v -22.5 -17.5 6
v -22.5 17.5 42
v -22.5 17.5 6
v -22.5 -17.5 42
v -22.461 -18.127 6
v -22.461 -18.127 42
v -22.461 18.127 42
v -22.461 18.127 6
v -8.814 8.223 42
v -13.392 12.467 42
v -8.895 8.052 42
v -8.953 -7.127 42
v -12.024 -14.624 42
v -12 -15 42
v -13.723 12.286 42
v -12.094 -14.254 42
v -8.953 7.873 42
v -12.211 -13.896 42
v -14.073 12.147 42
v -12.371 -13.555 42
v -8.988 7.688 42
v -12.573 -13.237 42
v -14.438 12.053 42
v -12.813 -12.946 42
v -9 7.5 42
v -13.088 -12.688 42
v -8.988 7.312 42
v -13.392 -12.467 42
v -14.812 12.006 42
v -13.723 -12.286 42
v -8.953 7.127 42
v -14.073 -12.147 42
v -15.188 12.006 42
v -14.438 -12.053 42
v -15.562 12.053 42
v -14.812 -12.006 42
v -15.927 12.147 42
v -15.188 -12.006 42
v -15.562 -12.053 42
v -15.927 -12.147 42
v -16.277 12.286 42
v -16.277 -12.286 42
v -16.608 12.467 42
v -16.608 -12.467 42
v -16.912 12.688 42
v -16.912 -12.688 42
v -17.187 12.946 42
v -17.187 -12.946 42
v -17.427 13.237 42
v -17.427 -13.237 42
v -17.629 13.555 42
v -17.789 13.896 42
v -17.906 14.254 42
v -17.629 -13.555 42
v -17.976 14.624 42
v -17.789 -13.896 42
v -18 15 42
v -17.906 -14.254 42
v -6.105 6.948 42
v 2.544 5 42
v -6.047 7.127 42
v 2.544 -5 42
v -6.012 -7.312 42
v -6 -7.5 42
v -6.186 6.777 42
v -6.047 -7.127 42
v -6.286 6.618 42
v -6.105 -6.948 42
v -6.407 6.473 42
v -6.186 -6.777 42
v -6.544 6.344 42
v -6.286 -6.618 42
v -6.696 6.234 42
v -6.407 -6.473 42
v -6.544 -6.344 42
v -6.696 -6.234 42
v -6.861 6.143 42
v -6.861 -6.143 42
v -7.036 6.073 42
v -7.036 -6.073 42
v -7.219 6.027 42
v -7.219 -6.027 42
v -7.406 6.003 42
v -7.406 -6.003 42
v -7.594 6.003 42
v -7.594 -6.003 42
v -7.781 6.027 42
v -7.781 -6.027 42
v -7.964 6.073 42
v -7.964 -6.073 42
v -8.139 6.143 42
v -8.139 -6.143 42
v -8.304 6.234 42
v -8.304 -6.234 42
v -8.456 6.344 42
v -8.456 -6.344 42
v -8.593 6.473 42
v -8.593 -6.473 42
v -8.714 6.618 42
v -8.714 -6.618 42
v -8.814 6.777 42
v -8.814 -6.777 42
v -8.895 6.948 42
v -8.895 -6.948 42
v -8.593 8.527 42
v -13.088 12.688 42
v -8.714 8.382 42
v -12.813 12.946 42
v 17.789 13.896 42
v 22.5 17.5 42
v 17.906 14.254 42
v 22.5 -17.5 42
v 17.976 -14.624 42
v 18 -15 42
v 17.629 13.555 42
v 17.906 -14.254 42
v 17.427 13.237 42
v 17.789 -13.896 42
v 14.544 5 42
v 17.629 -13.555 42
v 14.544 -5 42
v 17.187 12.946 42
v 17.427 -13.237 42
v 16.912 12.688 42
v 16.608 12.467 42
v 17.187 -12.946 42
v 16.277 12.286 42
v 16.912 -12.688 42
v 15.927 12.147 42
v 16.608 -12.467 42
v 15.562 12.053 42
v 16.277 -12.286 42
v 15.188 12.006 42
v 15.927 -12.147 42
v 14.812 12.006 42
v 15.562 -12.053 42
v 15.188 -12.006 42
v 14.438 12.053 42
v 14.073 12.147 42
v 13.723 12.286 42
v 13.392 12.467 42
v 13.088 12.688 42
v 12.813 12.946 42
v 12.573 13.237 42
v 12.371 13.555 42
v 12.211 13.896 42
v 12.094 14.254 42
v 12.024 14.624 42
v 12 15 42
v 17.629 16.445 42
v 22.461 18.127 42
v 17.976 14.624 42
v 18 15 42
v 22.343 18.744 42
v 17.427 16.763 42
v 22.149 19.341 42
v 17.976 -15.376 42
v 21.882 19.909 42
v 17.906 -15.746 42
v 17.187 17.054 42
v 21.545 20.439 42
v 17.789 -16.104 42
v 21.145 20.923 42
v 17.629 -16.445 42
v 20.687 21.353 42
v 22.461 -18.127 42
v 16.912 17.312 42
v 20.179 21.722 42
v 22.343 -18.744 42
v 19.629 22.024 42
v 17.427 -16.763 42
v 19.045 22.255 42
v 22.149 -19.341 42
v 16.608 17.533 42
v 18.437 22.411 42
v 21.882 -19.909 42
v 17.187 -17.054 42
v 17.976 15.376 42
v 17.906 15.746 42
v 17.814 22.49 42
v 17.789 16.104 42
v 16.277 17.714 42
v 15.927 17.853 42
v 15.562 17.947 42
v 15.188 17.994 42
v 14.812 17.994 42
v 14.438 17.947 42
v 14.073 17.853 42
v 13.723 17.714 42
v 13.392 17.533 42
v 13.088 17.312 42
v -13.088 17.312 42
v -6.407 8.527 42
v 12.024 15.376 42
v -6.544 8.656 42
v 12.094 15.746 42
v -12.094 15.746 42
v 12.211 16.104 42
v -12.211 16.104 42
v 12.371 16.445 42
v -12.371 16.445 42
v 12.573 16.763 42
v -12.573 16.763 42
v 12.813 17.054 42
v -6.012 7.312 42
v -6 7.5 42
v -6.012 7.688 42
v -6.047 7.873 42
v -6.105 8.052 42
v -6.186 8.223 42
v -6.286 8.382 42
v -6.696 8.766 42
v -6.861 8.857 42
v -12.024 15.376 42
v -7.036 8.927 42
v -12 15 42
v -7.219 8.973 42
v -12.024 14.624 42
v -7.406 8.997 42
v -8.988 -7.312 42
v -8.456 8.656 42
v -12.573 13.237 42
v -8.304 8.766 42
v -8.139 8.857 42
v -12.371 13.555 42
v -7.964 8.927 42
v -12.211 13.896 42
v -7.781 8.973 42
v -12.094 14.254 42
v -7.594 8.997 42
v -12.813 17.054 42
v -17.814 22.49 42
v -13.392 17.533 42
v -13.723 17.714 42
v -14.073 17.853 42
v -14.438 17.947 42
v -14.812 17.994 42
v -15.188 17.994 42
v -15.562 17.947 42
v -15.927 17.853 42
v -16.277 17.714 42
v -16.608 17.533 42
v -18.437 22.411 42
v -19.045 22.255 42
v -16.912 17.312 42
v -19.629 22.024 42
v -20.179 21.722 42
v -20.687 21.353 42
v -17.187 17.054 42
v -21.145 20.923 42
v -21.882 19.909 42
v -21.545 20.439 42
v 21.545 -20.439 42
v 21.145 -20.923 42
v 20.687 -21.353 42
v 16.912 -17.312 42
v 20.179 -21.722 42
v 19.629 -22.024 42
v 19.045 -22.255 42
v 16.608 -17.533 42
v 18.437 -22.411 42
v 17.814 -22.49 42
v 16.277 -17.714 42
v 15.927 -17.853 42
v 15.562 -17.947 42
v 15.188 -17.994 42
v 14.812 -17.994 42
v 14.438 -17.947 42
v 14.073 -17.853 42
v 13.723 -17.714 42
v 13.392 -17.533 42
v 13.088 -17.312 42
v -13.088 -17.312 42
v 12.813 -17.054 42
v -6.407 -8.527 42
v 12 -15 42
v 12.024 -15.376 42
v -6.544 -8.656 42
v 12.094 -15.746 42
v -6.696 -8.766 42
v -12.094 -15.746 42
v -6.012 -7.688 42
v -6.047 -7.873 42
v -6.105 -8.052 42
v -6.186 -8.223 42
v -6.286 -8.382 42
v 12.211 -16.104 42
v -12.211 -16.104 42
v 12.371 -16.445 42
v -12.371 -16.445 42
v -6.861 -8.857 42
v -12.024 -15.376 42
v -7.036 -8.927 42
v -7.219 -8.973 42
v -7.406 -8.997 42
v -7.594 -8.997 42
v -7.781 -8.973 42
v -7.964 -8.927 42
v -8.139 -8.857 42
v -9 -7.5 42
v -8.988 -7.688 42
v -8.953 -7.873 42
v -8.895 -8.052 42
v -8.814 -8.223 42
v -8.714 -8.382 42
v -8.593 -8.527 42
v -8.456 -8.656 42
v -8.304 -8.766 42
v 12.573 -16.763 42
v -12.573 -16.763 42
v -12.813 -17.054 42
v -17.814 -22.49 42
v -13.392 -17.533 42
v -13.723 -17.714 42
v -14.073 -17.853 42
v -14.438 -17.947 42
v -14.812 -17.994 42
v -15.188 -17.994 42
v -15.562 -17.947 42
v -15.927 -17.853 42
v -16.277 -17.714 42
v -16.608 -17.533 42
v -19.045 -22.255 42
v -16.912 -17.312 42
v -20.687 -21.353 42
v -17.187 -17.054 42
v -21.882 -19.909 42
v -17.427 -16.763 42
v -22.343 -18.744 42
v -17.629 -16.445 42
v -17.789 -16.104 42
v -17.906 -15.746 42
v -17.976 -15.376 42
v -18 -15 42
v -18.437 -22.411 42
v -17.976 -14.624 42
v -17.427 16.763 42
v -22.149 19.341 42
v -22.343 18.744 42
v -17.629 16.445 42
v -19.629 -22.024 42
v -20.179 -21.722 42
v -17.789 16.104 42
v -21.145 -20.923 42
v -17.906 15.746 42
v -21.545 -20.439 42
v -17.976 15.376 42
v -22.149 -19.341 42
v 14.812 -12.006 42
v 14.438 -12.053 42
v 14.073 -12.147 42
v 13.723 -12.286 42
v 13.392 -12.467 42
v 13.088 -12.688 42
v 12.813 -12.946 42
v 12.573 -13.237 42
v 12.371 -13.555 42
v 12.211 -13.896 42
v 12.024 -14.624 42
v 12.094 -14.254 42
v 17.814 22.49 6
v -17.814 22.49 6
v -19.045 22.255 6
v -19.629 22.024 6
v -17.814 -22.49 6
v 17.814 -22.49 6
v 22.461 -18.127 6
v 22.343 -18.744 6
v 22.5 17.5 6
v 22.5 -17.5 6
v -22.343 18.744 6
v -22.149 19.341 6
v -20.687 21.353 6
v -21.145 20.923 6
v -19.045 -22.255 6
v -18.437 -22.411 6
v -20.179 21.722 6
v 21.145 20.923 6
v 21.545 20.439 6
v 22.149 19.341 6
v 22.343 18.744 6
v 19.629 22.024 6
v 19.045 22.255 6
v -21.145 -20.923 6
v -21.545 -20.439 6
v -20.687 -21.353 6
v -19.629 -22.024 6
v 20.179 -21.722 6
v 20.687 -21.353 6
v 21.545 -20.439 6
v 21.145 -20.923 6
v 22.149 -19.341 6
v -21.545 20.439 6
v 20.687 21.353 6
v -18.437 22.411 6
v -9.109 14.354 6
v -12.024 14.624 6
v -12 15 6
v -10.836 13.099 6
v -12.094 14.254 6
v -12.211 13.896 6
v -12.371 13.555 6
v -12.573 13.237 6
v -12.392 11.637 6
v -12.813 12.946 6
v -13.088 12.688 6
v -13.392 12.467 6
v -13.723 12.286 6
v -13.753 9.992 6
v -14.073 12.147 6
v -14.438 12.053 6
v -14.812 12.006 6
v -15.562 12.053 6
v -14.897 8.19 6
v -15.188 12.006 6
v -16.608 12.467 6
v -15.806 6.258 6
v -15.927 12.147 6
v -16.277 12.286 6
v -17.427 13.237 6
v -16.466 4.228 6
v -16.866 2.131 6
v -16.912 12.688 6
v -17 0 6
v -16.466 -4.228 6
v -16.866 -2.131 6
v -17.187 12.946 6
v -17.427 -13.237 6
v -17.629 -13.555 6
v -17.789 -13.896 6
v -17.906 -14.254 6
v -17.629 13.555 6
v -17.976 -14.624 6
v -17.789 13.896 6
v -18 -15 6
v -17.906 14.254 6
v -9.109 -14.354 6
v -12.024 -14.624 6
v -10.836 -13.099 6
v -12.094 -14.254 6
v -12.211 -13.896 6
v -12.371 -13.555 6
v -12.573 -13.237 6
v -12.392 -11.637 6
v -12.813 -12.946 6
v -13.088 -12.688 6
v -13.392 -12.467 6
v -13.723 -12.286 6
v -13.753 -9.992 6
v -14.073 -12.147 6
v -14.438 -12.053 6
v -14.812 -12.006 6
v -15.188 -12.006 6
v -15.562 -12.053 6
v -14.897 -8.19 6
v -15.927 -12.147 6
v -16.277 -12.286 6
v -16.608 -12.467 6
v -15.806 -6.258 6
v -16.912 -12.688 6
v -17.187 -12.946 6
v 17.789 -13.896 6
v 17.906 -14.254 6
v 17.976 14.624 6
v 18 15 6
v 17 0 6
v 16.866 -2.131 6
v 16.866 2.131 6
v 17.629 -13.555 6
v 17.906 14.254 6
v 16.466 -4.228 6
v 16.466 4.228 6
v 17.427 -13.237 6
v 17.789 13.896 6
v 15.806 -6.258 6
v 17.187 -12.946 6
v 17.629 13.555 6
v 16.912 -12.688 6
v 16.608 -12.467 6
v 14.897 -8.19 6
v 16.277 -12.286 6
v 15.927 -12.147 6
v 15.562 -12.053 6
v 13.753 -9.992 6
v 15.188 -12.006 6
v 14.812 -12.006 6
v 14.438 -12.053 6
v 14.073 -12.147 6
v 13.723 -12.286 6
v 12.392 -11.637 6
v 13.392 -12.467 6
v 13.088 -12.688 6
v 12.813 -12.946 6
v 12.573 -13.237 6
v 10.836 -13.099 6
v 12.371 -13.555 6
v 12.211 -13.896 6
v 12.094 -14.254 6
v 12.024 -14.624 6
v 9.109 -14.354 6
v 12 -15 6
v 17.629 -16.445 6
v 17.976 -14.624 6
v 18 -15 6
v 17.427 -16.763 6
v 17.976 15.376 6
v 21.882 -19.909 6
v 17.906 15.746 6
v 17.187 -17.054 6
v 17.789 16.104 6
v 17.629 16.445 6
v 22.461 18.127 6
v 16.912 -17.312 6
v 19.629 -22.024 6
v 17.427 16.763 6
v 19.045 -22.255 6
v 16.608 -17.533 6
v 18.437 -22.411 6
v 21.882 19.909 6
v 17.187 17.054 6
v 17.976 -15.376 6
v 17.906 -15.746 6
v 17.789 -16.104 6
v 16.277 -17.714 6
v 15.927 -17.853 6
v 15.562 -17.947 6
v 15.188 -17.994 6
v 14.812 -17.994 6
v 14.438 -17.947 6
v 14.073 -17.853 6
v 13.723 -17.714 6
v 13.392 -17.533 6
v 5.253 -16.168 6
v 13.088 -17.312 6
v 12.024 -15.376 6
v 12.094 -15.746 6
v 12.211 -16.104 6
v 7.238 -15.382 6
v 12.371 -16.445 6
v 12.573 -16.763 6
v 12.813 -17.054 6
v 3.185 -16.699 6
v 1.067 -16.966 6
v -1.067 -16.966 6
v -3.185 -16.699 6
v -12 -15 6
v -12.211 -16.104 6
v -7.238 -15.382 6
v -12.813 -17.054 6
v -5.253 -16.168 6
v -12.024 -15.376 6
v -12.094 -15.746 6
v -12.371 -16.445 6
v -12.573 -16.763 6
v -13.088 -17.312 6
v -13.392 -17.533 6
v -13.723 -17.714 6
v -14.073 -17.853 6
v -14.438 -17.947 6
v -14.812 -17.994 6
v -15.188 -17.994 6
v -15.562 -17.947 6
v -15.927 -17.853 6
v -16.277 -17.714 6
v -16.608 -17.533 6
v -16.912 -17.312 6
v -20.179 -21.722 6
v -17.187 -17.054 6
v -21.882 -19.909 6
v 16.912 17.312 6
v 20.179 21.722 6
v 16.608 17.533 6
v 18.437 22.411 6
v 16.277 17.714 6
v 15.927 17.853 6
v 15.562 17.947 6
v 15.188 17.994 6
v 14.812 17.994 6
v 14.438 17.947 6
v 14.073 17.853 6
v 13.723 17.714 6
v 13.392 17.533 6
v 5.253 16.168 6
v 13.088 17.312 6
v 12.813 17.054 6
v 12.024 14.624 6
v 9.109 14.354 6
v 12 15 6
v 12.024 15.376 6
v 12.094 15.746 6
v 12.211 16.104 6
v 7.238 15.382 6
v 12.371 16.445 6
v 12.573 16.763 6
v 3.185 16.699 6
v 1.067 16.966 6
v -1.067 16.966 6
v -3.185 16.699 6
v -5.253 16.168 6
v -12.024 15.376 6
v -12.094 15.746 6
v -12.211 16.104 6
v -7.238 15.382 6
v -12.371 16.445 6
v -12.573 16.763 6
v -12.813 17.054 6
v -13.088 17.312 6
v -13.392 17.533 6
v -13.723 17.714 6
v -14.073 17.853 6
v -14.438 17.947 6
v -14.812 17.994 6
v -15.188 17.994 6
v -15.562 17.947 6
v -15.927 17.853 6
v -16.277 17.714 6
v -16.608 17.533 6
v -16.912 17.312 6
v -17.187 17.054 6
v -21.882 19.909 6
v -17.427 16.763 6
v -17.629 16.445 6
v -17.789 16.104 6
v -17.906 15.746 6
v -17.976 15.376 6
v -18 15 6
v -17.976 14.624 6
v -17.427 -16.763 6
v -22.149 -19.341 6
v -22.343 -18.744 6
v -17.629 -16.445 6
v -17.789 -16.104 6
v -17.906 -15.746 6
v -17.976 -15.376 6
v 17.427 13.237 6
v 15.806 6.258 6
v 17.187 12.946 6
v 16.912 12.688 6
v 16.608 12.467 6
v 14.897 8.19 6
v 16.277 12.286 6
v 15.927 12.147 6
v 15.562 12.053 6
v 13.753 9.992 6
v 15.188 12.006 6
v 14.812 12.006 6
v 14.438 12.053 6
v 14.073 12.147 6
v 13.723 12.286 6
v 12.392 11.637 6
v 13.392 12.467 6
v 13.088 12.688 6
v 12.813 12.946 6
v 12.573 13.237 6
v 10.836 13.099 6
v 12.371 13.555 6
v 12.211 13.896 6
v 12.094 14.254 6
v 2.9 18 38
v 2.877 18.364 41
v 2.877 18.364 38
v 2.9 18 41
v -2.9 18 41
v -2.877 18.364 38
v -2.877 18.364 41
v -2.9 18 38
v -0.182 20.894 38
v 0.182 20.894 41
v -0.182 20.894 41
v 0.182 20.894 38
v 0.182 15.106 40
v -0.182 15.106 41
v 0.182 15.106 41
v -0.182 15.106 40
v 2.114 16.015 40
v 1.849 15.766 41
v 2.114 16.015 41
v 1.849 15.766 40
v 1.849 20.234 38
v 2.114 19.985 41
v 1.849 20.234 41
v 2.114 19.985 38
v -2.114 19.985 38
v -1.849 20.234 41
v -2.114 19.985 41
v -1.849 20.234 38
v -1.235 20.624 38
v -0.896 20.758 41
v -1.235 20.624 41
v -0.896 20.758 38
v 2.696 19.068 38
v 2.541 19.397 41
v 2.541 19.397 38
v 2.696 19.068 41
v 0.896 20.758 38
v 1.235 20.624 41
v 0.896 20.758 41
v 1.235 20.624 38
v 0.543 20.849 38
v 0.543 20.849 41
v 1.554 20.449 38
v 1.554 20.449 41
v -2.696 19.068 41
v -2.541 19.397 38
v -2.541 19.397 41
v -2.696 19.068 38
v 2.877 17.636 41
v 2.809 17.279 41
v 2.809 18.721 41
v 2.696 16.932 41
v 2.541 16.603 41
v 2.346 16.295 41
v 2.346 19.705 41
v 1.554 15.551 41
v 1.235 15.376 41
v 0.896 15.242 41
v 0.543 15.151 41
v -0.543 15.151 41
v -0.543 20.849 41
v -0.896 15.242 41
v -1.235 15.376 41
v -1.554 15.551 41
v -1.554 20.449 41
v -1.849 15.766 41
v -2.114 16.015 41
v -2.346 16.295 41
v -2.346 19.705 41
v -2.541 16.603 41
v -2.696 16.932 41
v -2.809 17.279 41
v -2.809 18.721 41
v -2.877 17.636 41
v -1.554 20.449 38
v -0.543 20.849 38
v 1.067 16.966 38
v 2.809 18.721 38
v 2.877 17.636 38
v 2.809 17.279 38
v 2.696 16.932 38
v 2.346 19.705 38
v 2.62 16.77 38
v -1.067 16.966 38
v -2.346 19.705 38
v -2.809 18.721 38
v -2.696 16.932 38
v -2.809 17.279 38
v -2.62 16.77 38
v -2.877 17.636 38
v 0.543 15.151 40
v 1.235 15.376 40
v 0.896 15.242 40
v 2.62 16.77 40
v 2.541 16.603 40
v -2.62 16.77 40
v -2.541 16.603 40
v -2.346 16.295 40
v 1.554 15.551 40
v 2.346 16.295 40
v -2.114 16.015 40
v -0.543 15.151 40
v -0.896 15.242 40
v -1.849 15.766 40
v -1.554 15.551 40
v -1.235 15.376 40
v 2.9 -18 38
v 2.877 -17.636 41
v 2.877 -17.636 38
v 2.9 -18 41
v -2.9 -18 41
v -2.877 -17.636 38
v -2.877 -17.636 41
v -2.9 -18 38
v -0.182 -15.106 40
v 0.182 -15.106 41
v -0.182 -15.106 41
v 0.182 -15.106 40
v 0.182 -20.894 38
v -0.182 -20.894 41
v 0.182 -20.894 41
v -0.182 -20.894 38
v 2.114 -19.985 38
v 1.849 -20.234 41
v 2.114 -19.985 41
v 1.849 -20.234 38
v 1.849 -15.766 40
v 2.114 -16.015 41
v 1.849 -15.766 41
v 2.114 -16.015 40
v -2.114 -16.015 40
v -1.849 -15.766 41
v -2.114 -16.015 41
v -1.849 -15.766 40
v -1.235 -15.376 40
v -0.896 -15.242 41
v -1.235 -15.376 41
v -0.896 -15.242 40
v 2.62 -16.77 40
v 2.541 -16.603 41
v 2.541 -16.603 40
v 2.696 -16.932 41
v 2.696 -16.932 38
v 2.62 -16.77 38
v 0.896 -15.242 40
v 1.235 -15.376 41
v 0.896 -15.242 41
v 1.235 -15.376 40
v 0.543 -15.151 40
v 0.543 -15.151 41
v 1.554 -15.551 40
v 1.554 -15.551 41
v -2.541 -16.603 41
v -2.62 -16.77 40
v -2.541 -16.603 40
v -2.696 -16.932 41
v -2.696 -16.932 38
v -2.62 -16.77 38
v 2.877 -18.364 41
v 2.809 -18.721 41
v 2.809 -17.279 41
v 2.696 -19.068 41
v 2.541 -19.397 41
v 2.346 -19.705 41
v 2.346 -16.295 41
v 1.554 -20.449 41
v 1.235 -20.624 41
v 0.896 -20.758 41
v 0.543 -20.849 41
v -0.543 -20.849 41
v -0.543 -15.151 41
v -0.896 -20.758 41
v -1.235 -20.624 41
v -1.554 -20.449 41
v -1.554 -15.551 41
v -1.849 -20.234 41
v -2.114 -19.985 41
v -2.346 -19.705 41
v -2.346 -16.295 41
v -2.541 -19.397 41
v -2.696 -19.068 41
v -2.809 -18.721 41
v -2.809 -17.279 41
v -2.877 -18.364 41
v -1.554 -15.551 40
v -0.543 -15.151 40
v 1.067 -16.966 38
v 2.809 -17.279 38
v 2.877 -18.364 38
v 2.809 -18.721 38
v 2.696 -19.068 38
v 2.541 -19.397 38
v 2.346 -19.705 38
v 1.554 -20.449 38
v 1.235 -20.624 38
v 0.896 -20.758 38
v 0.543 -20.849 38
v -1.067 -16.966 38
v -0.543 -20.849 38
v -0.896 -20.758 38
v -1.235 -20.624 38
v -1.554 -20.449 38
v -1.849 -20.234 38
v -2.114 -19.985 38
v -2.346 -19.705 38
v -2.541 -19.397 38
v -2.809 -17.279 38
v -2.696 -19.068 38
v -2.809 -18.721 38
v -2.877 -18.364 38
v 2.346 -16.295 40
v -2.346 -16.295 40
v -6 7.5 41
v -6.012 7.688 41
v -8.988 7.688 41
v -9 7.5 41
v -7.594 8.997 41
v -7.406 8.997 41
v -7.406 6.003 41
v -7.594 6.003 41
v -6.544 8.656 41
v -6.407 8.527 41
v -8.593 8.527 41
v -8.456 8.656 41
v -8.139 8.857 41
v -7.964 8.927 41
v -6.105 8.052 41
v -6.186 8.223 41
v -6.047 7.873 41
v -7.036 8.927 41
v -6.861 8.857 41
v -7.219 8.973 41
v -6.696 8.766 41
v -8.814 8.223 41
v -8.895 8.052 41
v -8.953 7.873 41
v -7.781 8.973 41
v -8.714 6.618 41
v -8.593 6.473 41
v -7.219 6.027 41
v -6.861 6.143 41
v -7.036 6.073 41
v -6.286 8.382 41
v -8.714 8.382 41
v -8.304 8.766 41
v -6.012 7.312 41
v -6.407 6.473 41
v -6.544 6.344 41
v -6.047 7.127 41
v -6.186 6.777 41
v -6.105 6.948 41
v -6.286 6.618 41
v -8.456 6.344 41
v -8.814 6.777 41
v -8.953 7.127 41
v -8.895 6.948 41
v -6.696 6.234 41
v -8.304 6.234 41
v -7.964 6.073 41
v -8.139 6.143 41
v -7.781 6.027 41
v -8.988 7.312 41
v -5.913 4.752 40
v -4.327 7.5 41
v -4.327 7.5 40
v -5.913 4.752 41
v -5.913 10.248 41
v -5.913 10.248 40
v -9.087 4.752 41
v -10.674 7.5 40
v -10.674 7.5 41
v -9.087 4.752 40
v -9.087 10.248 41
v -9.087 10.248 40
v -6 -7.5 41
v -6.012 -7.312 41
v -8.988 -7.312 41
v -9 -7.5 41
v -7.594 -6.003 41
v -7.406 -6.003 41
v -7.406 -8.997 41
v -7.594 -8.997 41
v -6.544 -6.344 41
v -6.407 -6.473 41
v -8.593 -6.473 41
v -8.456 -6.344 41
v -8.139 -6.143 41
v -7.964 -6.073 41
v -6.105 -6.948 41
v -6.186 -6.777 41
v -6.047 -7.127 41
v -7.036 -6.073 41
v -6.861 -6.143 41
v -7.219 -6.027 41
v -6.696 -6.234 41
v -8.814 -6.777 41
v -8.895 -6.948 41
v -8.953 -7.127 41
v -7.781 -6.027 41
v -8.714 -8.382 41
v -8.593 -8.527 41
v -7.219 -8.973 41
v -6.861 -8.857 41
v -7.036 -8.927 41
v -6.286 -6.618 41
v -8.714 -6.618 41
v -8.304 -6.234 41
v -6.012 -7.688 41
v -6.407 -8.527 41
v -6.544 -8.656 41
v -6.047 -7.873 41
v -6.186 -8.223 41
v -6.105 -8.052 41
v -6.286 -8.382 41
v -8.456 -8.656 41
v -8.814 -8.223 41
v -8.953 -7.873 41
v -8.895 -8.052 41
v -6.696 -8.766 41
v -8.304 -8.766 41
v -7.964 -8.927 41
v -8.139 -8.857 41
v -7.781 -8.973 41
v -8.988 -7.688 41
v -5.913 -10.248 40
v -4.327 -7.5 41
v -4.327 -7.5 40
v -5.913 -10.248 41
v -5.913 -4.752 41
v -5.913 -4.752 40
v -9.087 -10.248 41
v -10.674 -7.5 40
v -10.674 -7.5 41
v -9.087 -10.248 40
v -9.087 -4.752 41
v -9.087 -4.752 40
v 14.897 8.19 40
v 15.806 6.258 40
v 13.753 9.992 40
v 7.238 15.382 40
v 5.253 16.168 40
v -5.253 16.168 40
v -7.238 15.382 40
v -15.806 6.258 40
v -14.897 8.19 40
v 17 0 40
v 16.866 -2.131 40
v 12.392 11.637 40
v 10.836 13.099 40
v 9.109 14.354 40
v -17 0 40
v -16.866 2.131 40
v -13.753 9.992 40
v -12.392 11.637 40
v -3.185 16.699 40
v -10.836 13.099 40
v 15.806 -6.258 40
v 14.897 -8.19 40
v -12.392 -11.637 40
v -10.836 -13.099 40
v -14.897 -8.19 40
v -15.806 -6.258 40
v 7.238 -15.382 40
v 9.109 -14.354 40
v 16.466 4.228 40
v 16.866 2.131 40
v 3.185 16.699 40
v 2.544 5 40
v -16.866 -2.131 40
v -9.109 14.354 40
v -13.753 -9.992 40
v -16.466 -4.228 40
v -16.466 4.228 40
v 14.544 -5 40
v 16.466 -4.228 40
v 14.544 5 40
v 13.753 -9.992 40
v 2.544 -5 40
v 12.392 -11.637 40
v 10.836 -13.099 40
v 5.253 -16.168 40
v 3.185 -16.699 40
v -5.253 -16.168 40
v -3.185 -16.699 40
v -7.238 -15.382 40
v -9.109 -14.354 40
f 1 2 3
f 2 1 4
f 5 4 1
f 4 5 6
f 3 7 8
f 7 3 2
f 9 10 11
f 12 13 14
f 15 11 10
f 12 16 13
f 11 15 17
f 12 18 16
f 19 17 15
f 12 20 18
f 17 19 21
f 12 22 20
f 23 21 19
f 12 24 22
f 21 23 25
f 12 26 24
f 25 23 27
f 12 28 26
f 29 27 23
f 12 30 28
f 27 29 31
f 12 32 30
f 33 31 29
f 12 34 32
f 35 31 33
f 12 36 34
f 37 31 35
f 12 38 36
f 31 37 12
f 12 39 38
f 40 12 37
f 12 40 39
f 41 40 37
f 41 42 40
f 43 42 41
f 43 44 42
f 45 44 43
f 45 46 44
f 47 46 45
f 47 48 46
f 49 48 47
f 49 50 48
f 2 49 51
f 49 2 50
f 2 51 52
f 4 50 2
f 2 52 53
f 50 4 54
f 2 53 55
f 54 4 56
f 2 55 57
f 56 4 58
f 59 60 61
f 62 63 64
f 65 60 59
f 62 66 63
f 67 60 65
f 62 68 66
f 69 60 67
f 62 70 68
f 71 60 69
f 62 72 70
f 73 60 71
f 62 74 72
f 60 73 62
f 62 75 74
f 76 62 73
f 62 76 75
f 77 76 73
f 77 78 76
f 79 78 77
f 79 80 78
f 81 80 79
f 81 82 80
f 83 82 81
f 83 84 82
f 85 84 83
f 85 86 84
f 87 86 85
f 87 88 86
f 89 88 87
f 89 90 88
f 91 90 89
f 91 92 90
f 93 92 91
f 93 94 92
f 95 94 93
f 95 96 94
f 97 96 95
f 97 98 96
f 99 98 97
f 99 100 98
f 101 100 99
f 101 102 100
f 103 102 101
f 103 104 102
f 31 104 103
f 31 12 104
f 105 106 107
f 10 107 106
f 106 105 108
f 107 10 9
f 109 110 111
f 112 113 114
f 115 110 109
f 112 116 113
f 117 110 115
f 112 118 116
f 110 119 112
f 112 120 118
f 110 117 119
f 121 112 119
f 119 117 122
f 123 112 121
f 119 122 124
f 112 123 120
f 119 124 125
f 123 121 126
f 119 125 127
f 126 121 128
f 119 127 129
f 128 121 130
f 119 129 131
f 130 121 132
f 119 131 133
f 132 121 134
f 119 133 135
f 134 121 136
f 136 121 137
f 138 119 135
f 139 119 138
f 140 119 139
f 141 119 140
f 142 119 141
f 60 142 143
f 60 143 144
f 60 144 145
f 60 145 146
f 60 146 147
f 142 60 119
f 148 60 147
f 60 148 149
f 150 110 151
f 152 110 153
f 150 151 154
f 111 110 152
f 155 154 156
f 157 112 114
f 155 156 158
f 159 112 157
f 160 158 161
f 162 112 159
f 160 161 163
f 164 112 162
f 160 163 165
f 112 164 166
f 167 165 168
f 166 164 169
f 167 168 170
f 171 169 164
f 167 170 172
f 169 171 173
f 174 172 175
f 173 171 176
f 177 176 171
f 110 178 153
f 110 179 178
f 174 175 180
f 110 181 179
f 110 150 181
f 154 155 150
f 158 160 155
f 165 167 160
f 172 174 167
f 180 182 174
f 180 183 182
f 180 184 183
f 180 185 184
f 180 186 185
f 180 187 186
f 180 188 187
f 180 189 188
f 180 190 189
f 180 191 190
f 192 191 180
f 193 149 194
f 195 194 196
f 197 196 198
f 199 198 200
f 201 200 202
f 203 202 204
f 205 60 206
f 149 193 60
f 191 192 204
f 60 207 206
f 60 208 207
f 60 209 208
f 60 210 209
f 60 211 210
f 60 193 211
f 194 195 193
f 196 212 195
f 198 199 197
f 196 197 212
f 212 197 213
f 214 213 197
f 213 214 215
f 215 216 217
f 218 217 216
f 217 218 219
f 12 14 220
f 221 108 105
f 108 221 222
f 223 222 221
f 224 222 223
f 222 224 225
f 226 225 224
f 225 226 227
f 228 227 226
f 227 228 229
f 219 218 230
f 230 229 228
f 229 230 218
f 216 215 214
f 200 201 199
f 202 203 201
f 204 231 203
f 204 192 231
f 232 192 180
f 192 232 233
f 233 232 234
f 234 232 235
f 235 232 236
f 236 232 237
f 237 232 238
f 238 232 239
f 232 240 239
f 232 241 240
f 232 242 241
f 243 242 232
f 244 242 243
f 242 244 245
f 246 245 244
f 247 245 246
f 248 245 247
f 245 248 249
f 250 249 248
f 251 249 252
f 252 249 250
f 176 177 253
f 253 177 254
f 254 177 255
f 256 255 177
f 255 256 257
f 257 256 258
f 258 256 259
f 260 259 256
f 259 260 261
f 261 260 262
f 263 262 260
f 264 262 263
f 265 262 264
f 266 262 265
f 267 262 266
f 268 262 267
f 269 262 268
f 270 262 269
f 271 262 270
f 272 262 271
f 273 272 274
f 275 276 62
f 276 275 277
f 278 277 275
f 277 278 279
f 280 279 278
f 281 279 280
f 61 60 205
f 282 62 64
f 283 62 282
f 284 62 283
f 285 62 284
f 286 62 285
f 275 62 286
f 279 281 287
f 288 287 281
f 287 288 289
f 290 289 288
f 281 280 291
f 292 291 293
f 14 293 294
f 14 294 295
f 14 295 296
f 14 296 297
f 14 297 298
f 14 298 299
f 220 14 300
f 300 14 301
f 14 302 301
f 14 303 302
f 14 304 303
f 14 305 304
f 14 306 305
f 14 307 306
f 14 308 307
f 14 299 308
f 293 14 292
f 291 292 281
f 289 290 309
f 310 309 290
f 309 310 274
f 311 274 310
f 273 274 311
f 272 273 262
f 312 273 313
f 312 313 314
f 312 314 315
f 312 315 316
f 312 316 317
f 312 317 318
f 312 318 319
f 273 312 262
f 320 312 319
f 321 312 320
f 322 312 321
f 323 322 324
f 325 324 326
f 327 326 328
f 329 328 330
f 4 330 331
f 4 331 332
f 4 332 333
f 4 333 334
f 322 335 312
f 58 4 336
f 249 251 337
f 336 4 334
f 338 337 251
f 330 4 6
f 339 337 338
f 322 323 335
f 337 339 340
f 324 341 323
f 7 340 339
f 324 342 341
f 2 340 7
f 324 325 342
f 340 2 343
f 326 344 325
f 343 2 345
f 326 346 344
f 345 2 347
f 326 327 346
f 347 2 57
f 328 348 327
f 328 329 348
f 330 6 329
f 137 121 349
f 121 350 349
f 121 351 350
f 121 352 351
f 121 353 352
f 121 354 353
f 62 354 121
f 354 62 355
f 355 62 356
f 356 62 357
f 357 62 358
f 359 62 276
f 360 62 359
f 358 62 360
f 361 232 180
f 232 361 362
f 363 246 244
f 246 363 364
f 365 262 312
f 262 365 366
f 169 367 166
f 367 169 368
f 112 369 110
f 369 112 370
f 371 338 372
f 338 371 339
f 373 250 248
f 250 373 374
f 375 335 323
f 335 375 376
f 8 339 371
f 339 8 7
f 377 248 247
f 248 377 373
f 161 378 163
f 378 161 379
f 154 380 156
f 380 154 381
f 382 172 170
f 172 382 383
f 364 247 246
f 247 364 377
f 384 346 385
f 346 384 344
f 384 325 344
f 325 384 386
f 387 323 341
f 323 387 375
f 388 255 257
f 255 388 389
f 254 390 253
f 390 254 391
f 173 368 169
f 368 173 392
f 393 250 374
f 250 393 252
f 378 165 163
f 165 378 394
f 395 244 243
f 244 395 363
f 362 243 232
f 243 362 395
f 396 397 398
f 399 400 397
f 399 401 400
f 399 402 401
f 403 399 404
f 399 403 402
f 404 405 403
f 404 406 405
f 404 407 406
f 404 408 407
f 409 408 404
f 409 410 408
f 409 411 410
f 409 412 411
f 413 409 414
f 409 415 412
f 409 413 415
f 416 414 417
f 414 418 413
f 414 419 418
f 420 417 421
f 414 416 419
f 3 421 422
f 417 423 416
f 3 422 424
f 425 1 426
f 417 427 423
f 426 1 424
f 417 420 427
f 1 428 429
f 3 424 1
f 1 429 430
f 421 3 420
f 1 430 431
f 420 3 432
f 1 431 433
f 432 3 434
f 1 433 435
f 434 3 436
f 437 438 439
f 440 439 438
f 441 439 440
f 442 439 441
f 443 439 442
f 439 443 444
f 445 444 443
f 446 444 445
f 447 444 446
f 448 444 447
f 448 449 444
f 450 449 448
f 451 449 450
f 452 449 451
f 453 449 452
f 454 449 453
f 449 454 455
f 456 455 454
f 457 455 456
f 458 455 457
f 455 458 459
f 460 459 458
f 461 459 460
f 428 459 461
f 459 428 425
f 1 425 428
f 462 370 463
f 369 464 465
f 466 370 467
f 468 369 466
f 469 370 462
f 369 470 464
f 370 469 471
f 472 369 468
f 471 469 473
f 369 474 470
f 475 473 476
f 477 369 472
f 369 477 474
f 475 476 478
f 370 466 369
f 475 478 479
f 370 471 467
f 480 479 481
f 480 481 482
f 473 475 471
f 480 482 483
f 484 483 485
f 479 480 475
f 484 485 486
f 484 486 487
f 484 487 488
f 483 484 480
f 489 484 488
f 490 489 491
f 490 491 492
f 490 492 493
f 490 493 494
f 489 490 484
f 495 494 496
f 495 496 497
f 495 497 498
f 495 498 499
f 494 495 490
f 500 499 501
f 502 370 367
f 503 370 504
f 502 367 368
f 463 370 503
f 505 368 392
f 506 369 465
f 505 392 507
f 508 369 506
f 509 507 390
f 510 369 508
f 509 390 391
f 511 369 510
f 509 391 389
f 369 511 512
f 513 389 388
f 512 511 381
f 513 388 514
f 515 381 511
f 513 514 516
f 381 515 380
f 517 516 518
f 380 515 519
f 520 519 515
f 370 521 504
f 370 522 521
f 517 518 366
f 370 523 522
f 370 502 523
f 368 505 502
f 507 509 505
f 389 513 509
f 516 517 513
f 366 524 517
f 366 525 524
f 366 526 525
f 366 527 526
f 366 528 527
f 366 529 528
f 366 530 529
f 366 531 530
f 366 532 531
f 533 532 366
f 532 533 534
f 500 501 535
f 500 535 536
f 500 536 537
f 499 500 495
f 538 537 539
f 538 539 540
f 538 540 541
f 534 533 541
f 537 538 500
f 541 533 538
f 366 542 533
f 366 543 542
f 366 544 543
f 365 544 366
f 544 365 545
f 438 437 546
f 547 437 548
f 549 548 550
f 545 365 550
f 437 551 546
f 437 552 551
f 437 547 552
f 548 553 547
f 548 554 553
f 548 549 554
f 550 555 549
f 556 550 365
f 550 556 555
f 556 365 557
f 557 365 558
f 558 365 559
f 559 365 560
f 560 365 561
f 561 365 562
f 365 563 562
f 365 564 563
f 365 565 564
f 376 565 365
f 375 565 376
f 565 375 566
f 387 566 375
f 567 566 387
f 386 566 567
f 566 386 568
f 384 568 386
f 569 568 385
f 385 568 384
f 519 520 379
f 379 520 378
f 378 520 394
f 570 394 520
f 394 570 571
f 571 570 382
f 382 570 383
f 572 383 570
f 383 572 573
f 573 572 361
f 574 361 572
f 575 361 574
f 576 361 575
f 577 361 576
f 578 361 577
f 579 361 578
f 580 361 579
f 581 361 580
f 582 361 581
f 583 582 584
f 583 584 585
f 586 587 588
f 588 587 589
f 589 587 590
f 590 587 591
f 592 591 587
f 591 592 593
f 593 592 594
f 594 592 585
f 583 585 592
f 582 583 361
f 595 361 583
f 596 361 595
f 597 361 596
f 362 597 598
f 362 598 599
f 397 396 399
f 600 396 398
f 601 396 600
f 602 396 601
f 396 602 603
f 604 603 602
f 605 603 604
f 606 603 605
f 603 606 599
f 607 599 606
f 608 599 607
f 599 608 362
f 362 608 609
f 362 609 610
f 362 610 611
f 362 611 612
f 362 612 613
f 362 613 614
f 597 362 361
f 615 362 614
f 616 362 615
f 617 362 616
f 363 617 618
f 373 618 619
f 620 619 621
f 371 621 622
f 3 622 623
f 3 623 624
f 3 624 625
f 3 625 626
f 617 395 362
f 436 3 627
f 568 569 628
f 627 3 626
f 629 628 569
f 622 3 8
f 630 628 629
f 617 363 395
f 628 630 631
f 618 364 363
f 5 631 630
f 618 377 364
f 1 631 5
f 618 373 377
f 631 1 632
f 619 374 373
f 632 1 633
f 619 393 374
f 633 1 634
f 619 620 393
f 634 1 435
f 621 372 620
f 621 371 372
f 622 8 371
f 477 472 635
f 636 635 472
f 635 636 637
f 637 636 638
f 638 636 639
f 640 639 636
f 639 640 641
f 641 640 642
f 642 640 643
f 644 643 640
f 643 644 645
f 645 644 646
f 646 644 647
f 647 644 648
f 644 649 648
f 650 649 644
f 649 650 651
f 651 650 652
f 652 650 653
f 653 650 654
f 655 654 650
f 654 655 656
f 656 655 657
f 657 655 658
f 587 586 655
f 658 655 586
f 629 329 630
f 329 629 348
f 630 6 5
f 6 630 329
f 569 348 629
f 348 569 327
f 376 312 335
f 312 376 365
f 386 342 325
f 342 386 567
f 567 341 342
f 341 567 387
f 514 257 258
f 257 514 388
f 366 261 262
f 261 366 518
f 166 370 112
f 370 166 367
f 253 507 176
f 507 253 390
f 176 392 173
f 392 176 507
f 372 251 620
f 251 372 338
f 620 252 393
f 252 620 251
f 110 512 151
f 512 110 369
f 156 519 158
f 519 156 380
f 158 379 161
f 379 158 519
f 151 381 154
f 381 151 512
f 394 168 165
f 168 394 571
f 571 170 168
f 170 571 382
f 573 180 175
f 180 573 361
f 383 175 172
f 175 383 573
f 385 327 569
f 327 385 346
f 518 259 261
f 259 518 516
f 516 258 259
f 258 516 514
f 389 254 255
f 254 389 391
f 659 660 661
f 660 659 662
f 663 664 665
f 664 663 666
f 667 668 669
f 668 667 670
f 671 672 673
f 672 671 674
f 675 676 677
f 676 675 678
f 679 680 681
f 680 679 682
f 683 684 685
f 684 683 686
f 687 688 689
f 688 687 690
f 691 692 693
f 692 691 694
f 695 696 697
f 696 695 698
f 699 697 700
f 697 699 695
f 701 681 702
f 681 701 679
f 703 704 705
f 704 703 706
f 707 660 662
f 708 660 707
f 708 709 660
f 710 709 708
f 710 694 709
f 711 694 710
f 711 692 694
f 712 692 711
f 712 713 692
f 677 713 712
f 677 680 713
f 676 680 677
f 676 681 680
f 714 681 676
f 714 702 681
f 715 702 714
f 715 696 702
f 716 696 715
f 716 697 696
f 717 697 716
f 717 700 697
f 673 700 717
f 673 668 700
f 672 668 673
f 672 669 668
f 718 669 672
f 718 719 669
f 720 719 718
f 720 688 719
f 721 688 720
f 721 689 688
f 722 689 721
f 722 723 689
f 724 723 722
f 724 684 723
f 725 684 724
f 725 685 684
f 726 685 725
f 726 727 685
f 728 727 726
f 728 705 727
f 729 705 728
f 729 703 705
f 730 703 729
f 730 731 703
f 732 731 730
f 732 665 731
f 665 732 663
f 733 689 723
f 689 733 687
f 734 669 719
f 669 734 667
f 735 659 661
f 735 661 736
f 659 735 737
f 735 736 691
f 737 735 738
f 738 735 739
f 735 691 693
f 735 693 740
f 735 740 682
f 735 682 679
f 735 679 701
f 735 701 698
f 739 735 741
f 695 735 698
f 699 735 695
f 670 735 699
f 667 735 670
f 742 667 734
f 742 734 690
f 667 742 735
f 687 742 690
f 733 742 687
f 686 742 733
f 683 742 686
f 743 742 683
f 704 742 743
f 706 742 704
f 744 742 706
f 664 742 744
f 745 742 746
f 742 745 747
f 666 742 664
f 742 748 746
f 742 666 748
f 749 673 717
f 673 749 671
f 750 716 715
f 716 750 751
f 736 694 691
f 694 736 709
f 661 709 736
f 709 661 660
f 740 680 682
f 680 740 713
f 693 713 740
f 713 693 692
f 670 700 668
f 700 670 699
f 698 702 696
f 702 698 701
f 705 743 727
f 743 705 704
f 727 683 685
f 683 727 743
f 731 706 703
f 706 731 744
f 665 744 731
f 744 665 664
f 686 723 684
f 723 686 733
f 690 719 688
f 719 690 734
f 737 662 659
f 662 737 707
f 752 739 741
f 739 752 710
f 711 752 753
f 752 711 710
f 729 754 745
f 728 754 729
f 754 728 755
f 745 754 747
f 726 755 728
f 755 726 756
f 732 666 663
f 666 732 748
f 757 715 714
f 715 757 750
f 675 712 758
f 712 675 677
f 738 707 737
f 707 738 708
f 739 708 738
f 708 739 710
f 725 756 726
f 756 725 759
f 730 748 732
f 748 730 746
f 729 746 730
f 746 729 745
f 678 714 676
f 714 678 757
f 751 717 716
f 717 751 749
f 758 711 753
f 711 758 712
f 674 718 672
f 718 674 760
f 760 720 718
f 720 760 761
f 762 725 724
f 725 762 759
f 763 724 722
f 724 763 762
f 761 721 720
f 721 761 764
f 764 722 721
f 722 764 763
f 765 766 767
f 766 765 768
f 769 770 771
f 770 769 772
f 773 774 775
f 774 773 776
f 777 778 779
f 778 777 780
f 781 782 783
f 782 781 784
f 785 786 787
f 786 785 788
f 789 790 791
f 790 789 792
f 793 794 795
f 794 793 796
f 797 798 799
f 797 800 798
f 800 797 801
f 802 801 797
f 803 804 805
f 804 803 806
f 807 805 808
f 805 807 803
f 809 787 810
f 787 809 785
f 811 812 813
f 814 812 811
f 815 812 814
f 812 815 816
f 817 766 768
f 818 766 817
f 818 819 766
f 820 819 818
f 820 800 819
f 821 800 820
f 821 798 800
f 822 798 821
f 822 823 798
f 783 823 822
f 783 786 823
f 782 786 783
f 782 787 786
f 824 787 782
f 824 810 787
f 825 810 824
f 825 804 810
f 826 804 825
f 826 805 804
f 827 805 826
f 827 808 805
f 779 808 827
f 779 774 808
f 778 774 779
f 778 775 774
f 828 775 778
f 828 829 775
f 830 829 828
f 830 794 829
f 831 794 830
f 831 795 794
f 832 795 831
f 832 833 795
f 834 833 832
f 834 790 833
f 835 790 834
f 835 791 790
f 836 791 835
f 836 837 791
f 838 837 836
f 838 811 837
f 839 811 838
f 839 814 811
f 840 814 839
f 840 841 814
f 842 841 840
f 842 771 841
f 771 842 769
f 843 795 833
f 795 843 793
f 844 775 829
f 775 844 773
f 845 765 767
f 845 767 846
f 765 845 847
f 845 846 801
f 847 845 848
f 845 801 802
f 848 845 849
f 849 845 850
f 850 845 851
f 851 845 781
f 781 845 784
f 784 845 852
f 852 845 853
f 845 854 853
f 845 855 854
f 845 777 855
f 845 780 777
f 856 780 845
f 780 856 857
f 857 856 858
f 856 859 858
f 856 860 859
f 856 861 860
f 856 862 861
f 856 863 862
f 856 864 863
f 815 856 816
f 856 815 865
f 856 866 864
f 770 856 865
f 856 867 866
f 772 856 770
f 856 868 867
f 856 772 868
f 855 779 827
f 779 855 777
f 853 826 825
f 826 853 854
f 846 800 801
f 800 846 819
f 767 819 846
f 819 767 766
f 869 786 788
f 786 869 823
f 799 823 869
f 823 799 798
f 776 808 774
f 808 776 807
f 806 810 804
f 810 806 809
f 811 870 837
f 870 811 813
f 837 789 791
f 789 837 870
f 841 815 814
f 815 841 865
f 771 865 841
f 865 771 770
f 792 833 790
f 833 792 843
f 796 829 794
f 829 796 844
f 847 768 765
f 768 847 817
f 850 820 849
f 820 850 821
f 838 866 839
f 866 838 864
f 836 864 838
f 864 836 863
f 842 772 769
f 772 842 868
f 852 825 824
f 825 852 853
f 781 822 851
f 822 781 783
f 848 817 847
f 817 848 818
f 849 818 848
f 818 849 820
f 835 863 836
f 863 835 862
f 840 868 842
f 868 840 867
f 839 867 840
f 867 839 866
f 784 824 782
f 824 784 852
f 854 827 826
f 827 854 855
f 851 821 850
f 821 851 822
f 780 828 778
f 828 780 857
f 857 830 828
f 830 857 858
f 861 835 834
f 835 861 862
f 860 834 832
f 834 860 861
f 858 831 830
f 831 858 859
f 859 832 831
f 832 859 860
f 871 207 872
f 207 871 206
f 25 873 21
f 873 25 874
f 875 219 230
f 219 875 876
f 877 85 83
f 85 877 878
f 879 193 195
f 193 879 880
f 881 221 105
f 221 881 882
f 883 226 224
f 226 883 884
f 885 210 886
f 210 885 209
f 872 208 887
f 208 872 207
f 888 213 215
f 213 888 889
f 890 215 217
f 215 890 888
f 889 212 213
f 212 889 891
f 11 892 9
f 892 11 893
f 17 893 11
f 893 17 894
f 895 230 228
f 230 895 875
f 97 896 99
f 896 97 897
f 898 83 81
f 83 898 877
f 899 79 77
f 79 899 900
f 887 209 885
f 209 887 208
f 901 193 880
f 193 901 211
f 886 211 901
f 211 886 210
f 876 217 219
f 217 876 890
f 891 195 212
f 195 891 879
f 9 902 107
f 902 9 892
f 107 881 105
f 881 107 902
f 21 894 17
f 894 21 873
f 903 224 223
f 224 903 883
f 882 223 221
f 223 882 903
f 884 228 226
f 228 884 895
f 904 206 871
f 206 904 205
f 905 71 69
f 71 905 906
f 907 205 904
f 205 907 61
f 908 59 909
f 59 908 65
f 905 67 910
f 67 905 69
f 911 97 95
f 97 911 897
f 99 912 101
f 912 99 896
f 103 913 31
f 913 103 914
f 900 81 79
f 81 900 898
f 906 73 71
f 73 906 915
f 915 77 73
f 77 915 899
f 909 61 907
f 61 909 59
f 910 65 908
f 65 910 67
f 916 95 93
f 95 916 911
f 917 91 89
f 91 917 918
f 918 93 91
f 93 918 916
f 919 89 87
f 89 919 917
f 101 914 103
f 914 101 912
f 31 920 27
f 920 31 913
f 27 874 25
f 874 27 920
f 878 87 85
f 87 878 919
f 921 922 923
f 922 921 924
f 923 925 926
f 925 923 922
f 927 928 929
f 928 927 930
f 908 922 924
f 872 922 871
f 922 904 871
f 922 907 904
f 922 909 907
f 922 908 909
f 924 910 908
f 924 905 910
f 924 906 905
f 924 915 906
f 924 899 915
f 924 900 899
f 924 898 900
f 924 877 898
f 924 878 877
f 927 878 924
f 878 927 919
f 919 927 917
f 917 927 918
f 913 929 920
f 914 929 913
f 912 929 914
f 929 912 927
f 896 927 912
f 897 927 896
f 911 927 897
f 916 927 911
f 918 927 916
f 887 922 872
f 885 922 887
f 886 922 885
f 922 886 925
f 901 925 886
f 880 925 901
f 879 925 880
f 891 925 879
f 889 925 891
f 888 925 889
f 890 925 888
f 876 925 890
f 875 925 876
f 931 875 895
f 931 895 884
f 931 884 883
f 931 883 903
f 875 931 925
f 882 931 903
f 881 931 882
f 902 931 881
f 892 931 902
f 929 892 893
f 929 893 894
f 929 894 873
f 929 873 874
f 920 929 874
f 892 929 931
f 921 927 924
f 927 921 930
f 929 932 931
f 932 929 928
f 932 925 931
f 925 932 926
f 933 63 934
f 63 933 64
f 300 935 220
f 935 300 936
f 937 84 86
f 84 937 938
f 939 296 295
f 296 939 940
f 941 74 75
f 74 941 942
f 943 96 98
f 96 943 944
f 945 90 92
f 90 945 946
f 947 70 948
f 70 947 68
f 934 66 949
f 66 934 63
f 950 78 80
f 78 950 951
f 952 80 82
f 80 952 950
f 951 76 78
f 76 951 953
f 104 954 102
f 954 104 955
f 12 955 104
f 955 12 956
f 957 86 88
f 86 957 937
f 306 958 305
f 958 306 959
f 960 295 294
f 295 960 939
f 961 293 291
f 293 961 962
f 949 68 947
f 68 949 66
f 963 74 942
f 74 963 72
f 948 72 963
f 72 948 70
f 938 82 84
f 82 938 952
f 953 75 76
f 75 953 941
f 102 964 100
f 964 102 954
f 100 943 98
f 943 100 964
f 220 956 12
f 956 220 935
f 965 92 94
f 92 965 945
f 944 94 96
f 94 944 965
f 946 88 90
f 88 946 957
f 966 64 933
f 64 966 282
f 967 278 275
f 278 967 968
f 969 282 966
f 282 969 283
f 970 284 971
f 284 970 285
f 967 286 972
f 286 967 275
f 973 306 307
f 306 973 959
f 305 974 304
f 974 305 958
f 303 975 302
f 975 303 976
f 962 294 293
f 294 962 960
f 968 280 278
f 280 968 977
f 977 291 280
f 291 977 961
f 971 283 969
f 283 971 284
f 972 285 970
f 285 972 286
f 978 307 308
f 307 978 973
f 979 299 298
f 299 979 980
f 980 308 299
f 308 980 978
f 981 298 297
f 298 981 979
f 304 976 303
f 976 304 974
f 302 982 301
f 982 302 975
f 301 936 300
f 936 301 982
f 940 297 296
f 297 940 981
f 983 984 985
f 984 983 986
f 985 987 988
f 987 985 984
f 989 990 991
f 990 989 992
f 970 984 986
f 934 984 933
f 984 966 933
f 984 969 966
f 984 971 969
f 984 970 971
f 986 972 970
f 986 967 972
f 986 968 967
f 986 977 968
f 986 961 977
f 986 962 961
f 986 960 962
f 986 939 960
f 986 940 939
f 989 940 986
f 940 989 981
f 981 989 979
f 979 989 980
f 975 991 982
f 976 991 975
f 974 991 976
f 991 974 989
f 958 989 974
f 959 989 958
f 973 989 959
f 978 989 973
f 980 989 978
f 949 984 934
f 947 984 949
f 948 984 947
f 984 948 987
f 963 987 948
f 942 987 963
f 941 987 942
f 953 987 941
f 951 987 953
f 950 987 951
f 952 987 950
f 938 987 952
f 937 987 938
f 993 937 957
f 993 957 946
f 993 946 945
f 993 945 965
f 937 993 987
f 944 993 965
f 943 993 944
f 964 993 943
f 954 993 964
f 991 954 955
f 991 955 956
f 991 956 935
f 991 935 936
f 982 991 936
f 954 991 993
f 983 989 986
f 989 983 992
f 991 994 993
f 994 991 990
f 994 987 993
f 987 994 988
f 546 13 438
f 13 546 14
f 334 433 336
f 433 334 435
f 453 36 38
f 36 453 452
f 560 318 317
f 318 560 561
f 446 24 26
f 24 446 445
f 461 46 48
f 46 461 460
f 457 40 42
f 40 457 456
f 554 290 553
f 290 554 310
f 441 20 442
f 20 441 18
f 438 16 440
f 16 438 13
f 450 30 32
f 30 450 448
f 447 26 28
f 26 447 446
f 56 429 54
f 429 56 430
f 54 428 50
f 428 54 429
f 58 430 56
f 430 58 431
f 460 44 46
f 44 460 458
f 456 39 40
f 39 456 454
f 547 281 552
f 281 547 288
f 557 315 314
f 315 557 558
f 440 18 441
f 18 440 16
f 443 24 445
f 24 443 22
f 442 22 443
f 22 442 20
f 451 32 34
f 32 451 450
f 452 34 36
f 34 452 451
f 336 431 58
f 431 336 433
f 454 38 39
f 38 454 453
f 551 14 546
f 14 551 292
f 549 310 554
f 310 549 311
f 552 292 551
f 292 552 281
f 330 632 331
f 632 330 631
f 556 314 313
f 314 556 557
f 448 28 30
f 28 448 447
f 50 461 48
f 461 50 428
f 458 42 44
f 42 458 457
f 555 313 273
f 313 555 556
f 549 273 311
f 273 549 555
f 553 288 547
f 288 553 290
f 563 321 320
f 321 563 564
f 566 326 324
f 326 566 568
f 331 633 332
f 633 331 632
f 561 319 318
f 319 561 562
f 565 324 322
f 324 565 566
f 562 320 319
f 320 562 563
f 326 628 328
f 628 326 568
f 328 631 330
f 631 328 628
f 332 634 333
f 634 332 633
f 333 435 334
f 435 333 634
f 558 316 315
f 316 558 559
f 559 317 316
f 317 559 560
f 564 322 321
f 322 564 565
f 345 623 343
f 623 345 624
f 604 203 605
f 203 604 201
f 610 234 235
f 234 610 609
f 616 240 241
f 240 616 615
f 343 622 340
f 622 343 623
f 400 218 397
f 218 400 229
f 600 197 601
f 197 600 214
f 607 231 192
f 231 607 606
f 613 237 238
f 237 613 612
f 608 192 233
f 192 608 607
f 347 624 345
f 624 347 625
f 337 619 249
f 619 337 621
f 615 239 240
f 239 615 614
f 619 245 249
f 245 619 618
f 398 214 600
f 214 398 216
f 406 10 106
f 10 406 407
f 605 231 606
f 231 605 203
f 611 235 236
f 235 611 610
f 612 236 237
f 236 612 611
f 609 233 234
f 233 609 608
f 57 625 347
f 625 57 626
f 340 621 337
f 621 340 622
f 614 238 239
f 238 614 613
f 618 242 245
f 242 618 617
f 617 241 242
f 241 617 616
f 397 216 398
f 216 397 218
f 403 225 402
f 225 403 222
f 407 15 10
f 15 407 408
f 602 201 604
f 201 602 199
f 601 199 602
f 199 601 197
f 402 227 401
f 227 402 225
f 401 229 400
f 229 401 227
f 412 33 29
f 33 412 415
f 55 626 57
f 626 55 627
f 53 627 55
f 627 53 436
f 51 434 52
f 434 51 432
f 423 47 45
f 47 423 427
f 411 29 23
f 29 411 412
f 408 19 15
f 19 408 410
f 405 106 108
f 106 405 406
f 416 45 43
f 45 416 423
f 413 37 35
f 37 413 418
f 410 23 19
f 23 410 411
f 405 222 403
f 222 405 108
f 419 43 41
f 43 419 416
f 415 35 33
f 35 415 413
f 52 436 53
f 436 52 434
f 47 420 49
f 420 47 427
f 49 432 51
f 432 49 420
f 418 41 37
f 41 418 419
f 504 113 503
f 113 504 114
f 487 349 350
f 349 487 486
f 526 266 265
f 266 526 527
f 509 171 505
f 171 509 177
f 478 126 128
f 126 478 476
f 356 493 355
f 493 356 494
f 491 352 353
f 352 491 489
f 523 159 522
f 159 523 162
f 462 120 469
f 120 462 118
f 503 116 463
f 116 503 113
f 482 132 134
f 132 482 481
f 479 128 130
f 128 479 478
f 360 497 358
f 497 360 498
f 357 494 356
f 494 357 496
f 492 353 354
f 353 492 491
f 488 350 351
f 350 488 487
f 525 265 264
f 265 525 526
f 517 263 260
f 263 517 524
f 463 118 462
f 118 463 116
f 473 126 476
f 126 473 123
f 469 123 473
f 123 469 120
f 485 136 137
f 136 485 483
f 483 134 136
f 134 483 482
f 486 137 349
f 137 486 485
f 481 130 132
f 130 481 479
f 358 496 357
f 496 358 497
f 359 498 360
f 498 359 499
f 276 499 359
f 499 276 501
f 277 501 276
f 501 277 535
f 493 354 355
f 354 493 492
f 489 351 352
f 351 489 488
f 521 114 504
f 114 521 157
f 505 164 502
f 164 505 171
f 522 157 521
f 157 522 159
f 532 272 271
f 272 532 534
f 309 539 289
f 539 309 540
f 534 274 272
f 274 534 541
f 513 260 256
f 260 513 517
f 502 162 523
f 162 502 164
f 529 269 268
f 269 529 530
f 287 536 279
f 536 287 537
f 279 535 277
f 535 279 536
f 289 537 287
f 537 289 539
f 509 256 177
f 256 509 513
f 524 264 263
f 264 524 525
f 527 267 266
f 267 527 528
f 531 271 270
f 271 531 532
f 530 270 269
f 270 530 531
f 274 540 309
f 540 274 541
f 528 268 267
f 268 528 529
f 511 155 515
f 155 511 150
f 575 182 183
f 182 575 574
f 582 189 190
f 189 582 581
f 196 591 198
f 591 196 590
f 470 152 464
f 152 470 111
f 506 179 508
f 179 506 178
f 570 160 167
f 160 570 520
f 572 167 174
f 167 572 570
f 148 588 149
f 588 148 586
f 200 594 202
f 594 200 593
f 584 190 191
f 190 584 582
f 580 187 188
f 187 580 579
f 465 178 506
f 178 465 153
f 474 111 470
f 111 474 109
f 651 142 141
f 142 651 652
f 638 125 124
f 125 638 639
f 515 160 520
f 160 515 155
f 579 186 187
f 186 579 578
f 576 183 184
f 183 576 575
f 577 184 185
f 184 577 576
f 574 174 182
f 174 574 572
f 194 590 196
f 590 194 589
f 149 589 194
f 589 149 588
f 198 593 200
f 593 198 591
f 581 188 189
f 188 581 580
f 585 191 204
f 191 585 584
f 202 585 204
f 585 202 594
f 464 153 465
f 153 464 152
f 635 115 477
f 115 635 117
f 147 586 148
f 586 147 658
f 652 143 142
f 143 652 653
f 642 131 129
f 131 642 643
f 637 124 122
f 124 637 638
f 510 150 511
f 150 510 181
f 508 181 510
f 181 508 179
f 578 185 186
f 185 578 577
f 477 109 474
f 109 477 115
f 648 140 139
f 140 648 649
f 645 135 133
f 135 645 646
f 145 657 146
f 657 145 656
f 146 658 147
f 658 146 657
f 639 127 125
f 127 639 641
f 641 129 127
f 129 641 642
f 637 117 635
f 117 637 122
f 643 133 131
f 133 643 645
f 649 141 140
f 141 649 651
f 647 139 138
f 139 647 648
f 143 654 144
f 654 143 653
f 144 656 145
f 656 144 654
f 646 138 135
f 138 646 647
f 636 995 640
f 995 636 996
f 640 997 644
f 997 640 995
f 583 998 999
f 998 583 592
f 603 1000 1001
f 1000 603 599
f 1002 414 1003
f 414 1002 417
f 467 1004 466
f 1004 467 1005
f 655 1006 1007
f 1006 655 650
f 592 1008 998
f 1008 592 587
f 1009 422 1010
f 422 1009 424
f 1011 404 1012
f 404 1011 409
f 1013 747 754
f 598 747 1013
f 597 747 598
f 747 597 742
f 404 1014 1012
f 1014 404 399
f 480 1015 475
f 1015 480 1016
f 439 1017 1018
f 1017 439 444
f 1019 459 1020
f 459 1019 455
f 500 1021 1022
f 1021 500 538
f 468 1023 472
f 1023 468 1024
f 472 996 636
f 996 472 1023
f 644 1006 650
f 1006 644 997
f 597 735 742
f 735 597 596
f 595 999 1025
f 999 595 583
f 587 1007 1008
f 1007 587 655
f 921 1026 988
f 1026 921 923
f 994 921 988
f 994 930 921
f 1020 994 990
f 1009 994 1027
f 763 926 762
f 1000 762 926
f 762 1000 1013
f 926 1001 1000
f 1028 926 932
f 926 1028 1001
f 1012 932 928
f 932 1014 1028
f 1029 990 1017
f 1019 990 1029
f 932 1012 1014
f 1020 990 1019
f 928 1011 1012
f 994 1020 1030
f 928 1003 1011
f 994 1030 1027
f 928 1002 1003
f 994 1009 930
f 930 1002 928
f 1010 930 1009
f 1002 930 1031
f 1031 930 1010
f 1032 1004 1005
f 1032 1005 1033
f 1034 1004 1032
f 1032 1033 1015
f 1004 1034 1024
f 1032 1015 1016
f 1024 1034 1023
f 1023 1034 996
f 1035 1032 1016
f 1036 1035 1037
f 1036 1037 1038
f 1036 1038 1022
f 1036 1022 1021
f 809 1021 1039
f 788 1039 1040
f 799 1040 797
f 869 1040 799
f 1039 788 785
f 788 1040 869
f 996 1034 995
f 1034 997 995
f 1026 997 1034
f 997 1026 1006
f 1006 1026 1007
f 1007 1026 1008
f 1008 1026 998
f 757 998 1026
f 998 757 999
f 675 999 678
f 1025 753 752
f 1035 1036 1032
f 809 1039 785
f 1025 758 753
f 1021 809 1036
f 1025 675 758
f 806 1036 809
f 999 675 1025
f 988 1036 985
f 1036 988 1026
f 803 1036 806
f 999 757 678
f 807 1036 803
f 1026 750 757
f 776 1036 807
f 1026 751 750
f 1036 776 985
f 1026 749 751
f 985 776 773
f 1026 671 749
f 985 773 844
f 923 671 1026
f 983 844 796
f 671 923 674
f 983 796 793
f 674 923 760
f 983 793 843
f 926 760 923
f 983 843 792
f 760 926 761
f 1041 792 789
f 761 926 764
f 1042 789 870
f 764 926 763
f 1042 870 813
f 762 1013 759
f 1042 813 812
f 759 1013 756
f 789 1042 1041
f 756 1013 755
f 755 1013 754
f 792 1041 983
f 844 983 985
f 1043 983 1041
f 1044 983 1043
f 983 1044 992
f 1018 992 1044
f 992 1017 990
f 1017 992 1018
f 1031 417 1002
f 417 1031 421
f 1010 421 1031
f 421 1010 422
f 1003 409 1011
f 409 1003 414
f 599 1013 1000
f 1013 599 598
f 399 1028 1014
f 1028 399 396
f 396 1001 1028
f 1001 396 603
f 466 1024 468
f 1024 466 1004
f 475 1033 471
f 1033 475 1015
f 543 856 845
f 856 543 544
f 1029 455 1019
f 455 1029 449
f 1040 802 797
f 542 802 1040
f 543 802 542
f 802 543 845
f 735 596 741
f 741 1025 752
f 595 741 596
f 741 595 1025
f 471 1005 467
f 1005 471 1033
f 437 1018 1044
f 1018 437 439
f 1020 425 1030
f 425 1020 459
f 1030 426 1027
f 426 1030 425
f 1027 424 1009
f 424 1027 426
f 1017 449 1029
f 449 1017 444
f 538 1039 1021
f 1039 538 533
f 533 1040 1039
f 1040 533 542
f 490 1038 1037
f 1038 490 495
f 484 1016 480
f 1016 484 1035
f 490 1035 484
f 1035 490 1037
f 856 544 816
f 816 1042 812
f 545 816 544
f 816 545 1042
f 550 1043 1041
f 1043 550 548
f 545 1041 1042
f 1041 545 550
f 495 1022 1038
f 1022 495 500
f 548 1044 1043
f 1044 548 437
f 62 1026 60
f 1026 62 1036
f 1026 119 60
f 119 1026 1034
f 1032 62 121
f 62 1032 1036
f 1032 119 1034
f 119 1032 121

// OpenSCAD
$fn = 50;


difference() {
	union() {
		translate(v = [0, 0, 6]) {
			hull() {
				translate(v = [-17.5000000000, 17.5000000000, 0]) {
					cylinder(h = 36, r = 5);
				}
				translate(v = [17.5000000000, 17.5000000000, 0]) {
					cylinder(h = 36, r = 5);
				}
				translate(v = [-17.5000000000, -17.5000000000, 0]) {
					cylinder(h = 36, r = 5);
				}
				translate(v = [17.5000000000, -17.5000000000, 0]) {
					cylinder(h = 36, r = 5);
				}
			}
		}
		translate(v = [0, 0, 6]) {
			hull() {
				translate(v = [-17.5000000000, 17.5000000000, 0]) {
					cylinder(h = 36, r = 5);
				}
				translate(v = [17.5000000000, 17.5000000000, 0]) {
					cylinder(h = 36, r = 5);
				}
				translate(v = [-17.5000000000, -17.5000000000, 0]) {
					cylinder(h = 36, r = 5);
				}
				translate(v = [17.5000000000, -17.5000000000, 0]) {
					cylinder(h = 36, r = 5);
				}
			}
		}
	}
	union() {
		translate(v = [0, 18, 38]) {
			rotate(a = [0, 0, 0]) {
				difference() {
					union() {
						translate(v = [0, 0, -300.0000000000]) {
							cylinder(h = 100, r = 1.5000000000);
						}
						translate(v = [0, 0, -300.0000000000]) {
							cylinder(h = 100, r = 1.8000000000);
						}
						cylinder(h = 3, r = 2.9000000000);
						translate(v = [0, 0, -300.0000000000]) {
							cylinder(h = 100, r = 1.5000000000);
						}
					}
					union();
				}
			}
		}
		translate(v = [0, -18, 38]) {
			rotate(a = [0, 0, 0]) {
				difference() {
					union() {
						translate(v = [0, 0, -300.0000000000]) {
							cylinder(h = 100, r = 1.5000000000);
						}
						translate(v = [0, 0, -300.0000000000]) {
							cylinder(h = 100, r = 1.8000000000);
						}
						cylinder(h = 3, r = 2.9000000000);
						translate(v = [0, 0, -300.0000000000]) {
							cylinder(h = 100, r = 1.5000000000);
						}
					}
					union();
				}
			}
		}
		translate(v = [-7.5000000000, 7.5000000000, 41]) {
			rotate(a = [0, 0, 0]) {
				difference() {
					union() {
						translate(v = [0, 0, -50.0000000000]) {
							cylinder(h = 100, r = 1.5000000000);
						}
						translate(v = [0, 0, -50.0000000000]) {
							cylinder(h = 100, r = 1.5000000000);
						}
						translate(v = [0, 0, -2.5000000000]) {
							linear_extrude(height = 2.5000000000) {
								polygon(points = [[3.1735000000, 0.0000000000], [1.5867500000, 2.7483316189], [-1.5867500000, 2.7483316189], [-3.1735000000, 0.0000000000], [-1.5867500000, -2.7483316189], [1.5867500000, -2.7483316189]]);
							}
						}
						translate(v = [0, 0, -50.0000000000]) {
							cylinder(h = 100, r = 1.5000000000);
						}
					}
					union();
				}
			}
		}
		translate(v = [-7.5000000000, -7.5000000000, 41]) {
			rotate(a = [0, 0, 0]) {
				difference() {
					union() {
						translate(v = [0, 0, -50.0000000000]) {
							cylinder(h = 100, r = 1.5000000000);
						}
						translate(v = [0, 0, -50.0000000000]) {
							cylinder(h = 100, r = 1.5000000000);
						}
						translate(v = [0, 0, -2.5000000000]) {
							linear_extrude(height = 2.5000000000) {
								polygon(points = [[3.1735000000, 0.0000000000], [1.5867500000, 2.7483316189], [-1.5867500000, 2.7483316189], [-3.1735000000, 0.0000000000], [-1.5867500000, -2.7483316189], [1.5867500000, -2.7483316189]]);
							}
						}
						translate(v = [0, 0, -50.0000000000]) {
							cylinder(h = 100, r = 1.5000000000);
						}
					}
					union();
				}
			}
		}
		translate(v = [-15.0000000000, -15.0000000000, -50.0000000000]) {
			cylinder(h = 100, r = 3.0000000000);
		}
		translate(v = [-15.0000000000, 15.0000000000, -50.0000000000]) {
			cylinder(h = 100, r = 3.0000000000);
		}
		translate(v = [15.0000000000, -15.0000000000, -50.0000000000]) {
			cylinder(h = 100, r = 3.0000000000);
		}
		translate(v = [15.0000000000, 15.0000000000, -50.0000000000]) {
			cylinder(h = 100, r = 3.0000000000);
		}
		translate(v = [0, 0, -1.0000000000]) {
			cylinder(h = 41, r = 17.0000000000);
		}
		#translate(v = [2.5440000000, -5.0000000000, 40]) {
			cube(size = [7, 10, 10]);
		}
		#translate(v = [7.5440000000, -5.0000000000, 40]) {
			cube(size = [7, 10, 10]);
		}
	}
}
